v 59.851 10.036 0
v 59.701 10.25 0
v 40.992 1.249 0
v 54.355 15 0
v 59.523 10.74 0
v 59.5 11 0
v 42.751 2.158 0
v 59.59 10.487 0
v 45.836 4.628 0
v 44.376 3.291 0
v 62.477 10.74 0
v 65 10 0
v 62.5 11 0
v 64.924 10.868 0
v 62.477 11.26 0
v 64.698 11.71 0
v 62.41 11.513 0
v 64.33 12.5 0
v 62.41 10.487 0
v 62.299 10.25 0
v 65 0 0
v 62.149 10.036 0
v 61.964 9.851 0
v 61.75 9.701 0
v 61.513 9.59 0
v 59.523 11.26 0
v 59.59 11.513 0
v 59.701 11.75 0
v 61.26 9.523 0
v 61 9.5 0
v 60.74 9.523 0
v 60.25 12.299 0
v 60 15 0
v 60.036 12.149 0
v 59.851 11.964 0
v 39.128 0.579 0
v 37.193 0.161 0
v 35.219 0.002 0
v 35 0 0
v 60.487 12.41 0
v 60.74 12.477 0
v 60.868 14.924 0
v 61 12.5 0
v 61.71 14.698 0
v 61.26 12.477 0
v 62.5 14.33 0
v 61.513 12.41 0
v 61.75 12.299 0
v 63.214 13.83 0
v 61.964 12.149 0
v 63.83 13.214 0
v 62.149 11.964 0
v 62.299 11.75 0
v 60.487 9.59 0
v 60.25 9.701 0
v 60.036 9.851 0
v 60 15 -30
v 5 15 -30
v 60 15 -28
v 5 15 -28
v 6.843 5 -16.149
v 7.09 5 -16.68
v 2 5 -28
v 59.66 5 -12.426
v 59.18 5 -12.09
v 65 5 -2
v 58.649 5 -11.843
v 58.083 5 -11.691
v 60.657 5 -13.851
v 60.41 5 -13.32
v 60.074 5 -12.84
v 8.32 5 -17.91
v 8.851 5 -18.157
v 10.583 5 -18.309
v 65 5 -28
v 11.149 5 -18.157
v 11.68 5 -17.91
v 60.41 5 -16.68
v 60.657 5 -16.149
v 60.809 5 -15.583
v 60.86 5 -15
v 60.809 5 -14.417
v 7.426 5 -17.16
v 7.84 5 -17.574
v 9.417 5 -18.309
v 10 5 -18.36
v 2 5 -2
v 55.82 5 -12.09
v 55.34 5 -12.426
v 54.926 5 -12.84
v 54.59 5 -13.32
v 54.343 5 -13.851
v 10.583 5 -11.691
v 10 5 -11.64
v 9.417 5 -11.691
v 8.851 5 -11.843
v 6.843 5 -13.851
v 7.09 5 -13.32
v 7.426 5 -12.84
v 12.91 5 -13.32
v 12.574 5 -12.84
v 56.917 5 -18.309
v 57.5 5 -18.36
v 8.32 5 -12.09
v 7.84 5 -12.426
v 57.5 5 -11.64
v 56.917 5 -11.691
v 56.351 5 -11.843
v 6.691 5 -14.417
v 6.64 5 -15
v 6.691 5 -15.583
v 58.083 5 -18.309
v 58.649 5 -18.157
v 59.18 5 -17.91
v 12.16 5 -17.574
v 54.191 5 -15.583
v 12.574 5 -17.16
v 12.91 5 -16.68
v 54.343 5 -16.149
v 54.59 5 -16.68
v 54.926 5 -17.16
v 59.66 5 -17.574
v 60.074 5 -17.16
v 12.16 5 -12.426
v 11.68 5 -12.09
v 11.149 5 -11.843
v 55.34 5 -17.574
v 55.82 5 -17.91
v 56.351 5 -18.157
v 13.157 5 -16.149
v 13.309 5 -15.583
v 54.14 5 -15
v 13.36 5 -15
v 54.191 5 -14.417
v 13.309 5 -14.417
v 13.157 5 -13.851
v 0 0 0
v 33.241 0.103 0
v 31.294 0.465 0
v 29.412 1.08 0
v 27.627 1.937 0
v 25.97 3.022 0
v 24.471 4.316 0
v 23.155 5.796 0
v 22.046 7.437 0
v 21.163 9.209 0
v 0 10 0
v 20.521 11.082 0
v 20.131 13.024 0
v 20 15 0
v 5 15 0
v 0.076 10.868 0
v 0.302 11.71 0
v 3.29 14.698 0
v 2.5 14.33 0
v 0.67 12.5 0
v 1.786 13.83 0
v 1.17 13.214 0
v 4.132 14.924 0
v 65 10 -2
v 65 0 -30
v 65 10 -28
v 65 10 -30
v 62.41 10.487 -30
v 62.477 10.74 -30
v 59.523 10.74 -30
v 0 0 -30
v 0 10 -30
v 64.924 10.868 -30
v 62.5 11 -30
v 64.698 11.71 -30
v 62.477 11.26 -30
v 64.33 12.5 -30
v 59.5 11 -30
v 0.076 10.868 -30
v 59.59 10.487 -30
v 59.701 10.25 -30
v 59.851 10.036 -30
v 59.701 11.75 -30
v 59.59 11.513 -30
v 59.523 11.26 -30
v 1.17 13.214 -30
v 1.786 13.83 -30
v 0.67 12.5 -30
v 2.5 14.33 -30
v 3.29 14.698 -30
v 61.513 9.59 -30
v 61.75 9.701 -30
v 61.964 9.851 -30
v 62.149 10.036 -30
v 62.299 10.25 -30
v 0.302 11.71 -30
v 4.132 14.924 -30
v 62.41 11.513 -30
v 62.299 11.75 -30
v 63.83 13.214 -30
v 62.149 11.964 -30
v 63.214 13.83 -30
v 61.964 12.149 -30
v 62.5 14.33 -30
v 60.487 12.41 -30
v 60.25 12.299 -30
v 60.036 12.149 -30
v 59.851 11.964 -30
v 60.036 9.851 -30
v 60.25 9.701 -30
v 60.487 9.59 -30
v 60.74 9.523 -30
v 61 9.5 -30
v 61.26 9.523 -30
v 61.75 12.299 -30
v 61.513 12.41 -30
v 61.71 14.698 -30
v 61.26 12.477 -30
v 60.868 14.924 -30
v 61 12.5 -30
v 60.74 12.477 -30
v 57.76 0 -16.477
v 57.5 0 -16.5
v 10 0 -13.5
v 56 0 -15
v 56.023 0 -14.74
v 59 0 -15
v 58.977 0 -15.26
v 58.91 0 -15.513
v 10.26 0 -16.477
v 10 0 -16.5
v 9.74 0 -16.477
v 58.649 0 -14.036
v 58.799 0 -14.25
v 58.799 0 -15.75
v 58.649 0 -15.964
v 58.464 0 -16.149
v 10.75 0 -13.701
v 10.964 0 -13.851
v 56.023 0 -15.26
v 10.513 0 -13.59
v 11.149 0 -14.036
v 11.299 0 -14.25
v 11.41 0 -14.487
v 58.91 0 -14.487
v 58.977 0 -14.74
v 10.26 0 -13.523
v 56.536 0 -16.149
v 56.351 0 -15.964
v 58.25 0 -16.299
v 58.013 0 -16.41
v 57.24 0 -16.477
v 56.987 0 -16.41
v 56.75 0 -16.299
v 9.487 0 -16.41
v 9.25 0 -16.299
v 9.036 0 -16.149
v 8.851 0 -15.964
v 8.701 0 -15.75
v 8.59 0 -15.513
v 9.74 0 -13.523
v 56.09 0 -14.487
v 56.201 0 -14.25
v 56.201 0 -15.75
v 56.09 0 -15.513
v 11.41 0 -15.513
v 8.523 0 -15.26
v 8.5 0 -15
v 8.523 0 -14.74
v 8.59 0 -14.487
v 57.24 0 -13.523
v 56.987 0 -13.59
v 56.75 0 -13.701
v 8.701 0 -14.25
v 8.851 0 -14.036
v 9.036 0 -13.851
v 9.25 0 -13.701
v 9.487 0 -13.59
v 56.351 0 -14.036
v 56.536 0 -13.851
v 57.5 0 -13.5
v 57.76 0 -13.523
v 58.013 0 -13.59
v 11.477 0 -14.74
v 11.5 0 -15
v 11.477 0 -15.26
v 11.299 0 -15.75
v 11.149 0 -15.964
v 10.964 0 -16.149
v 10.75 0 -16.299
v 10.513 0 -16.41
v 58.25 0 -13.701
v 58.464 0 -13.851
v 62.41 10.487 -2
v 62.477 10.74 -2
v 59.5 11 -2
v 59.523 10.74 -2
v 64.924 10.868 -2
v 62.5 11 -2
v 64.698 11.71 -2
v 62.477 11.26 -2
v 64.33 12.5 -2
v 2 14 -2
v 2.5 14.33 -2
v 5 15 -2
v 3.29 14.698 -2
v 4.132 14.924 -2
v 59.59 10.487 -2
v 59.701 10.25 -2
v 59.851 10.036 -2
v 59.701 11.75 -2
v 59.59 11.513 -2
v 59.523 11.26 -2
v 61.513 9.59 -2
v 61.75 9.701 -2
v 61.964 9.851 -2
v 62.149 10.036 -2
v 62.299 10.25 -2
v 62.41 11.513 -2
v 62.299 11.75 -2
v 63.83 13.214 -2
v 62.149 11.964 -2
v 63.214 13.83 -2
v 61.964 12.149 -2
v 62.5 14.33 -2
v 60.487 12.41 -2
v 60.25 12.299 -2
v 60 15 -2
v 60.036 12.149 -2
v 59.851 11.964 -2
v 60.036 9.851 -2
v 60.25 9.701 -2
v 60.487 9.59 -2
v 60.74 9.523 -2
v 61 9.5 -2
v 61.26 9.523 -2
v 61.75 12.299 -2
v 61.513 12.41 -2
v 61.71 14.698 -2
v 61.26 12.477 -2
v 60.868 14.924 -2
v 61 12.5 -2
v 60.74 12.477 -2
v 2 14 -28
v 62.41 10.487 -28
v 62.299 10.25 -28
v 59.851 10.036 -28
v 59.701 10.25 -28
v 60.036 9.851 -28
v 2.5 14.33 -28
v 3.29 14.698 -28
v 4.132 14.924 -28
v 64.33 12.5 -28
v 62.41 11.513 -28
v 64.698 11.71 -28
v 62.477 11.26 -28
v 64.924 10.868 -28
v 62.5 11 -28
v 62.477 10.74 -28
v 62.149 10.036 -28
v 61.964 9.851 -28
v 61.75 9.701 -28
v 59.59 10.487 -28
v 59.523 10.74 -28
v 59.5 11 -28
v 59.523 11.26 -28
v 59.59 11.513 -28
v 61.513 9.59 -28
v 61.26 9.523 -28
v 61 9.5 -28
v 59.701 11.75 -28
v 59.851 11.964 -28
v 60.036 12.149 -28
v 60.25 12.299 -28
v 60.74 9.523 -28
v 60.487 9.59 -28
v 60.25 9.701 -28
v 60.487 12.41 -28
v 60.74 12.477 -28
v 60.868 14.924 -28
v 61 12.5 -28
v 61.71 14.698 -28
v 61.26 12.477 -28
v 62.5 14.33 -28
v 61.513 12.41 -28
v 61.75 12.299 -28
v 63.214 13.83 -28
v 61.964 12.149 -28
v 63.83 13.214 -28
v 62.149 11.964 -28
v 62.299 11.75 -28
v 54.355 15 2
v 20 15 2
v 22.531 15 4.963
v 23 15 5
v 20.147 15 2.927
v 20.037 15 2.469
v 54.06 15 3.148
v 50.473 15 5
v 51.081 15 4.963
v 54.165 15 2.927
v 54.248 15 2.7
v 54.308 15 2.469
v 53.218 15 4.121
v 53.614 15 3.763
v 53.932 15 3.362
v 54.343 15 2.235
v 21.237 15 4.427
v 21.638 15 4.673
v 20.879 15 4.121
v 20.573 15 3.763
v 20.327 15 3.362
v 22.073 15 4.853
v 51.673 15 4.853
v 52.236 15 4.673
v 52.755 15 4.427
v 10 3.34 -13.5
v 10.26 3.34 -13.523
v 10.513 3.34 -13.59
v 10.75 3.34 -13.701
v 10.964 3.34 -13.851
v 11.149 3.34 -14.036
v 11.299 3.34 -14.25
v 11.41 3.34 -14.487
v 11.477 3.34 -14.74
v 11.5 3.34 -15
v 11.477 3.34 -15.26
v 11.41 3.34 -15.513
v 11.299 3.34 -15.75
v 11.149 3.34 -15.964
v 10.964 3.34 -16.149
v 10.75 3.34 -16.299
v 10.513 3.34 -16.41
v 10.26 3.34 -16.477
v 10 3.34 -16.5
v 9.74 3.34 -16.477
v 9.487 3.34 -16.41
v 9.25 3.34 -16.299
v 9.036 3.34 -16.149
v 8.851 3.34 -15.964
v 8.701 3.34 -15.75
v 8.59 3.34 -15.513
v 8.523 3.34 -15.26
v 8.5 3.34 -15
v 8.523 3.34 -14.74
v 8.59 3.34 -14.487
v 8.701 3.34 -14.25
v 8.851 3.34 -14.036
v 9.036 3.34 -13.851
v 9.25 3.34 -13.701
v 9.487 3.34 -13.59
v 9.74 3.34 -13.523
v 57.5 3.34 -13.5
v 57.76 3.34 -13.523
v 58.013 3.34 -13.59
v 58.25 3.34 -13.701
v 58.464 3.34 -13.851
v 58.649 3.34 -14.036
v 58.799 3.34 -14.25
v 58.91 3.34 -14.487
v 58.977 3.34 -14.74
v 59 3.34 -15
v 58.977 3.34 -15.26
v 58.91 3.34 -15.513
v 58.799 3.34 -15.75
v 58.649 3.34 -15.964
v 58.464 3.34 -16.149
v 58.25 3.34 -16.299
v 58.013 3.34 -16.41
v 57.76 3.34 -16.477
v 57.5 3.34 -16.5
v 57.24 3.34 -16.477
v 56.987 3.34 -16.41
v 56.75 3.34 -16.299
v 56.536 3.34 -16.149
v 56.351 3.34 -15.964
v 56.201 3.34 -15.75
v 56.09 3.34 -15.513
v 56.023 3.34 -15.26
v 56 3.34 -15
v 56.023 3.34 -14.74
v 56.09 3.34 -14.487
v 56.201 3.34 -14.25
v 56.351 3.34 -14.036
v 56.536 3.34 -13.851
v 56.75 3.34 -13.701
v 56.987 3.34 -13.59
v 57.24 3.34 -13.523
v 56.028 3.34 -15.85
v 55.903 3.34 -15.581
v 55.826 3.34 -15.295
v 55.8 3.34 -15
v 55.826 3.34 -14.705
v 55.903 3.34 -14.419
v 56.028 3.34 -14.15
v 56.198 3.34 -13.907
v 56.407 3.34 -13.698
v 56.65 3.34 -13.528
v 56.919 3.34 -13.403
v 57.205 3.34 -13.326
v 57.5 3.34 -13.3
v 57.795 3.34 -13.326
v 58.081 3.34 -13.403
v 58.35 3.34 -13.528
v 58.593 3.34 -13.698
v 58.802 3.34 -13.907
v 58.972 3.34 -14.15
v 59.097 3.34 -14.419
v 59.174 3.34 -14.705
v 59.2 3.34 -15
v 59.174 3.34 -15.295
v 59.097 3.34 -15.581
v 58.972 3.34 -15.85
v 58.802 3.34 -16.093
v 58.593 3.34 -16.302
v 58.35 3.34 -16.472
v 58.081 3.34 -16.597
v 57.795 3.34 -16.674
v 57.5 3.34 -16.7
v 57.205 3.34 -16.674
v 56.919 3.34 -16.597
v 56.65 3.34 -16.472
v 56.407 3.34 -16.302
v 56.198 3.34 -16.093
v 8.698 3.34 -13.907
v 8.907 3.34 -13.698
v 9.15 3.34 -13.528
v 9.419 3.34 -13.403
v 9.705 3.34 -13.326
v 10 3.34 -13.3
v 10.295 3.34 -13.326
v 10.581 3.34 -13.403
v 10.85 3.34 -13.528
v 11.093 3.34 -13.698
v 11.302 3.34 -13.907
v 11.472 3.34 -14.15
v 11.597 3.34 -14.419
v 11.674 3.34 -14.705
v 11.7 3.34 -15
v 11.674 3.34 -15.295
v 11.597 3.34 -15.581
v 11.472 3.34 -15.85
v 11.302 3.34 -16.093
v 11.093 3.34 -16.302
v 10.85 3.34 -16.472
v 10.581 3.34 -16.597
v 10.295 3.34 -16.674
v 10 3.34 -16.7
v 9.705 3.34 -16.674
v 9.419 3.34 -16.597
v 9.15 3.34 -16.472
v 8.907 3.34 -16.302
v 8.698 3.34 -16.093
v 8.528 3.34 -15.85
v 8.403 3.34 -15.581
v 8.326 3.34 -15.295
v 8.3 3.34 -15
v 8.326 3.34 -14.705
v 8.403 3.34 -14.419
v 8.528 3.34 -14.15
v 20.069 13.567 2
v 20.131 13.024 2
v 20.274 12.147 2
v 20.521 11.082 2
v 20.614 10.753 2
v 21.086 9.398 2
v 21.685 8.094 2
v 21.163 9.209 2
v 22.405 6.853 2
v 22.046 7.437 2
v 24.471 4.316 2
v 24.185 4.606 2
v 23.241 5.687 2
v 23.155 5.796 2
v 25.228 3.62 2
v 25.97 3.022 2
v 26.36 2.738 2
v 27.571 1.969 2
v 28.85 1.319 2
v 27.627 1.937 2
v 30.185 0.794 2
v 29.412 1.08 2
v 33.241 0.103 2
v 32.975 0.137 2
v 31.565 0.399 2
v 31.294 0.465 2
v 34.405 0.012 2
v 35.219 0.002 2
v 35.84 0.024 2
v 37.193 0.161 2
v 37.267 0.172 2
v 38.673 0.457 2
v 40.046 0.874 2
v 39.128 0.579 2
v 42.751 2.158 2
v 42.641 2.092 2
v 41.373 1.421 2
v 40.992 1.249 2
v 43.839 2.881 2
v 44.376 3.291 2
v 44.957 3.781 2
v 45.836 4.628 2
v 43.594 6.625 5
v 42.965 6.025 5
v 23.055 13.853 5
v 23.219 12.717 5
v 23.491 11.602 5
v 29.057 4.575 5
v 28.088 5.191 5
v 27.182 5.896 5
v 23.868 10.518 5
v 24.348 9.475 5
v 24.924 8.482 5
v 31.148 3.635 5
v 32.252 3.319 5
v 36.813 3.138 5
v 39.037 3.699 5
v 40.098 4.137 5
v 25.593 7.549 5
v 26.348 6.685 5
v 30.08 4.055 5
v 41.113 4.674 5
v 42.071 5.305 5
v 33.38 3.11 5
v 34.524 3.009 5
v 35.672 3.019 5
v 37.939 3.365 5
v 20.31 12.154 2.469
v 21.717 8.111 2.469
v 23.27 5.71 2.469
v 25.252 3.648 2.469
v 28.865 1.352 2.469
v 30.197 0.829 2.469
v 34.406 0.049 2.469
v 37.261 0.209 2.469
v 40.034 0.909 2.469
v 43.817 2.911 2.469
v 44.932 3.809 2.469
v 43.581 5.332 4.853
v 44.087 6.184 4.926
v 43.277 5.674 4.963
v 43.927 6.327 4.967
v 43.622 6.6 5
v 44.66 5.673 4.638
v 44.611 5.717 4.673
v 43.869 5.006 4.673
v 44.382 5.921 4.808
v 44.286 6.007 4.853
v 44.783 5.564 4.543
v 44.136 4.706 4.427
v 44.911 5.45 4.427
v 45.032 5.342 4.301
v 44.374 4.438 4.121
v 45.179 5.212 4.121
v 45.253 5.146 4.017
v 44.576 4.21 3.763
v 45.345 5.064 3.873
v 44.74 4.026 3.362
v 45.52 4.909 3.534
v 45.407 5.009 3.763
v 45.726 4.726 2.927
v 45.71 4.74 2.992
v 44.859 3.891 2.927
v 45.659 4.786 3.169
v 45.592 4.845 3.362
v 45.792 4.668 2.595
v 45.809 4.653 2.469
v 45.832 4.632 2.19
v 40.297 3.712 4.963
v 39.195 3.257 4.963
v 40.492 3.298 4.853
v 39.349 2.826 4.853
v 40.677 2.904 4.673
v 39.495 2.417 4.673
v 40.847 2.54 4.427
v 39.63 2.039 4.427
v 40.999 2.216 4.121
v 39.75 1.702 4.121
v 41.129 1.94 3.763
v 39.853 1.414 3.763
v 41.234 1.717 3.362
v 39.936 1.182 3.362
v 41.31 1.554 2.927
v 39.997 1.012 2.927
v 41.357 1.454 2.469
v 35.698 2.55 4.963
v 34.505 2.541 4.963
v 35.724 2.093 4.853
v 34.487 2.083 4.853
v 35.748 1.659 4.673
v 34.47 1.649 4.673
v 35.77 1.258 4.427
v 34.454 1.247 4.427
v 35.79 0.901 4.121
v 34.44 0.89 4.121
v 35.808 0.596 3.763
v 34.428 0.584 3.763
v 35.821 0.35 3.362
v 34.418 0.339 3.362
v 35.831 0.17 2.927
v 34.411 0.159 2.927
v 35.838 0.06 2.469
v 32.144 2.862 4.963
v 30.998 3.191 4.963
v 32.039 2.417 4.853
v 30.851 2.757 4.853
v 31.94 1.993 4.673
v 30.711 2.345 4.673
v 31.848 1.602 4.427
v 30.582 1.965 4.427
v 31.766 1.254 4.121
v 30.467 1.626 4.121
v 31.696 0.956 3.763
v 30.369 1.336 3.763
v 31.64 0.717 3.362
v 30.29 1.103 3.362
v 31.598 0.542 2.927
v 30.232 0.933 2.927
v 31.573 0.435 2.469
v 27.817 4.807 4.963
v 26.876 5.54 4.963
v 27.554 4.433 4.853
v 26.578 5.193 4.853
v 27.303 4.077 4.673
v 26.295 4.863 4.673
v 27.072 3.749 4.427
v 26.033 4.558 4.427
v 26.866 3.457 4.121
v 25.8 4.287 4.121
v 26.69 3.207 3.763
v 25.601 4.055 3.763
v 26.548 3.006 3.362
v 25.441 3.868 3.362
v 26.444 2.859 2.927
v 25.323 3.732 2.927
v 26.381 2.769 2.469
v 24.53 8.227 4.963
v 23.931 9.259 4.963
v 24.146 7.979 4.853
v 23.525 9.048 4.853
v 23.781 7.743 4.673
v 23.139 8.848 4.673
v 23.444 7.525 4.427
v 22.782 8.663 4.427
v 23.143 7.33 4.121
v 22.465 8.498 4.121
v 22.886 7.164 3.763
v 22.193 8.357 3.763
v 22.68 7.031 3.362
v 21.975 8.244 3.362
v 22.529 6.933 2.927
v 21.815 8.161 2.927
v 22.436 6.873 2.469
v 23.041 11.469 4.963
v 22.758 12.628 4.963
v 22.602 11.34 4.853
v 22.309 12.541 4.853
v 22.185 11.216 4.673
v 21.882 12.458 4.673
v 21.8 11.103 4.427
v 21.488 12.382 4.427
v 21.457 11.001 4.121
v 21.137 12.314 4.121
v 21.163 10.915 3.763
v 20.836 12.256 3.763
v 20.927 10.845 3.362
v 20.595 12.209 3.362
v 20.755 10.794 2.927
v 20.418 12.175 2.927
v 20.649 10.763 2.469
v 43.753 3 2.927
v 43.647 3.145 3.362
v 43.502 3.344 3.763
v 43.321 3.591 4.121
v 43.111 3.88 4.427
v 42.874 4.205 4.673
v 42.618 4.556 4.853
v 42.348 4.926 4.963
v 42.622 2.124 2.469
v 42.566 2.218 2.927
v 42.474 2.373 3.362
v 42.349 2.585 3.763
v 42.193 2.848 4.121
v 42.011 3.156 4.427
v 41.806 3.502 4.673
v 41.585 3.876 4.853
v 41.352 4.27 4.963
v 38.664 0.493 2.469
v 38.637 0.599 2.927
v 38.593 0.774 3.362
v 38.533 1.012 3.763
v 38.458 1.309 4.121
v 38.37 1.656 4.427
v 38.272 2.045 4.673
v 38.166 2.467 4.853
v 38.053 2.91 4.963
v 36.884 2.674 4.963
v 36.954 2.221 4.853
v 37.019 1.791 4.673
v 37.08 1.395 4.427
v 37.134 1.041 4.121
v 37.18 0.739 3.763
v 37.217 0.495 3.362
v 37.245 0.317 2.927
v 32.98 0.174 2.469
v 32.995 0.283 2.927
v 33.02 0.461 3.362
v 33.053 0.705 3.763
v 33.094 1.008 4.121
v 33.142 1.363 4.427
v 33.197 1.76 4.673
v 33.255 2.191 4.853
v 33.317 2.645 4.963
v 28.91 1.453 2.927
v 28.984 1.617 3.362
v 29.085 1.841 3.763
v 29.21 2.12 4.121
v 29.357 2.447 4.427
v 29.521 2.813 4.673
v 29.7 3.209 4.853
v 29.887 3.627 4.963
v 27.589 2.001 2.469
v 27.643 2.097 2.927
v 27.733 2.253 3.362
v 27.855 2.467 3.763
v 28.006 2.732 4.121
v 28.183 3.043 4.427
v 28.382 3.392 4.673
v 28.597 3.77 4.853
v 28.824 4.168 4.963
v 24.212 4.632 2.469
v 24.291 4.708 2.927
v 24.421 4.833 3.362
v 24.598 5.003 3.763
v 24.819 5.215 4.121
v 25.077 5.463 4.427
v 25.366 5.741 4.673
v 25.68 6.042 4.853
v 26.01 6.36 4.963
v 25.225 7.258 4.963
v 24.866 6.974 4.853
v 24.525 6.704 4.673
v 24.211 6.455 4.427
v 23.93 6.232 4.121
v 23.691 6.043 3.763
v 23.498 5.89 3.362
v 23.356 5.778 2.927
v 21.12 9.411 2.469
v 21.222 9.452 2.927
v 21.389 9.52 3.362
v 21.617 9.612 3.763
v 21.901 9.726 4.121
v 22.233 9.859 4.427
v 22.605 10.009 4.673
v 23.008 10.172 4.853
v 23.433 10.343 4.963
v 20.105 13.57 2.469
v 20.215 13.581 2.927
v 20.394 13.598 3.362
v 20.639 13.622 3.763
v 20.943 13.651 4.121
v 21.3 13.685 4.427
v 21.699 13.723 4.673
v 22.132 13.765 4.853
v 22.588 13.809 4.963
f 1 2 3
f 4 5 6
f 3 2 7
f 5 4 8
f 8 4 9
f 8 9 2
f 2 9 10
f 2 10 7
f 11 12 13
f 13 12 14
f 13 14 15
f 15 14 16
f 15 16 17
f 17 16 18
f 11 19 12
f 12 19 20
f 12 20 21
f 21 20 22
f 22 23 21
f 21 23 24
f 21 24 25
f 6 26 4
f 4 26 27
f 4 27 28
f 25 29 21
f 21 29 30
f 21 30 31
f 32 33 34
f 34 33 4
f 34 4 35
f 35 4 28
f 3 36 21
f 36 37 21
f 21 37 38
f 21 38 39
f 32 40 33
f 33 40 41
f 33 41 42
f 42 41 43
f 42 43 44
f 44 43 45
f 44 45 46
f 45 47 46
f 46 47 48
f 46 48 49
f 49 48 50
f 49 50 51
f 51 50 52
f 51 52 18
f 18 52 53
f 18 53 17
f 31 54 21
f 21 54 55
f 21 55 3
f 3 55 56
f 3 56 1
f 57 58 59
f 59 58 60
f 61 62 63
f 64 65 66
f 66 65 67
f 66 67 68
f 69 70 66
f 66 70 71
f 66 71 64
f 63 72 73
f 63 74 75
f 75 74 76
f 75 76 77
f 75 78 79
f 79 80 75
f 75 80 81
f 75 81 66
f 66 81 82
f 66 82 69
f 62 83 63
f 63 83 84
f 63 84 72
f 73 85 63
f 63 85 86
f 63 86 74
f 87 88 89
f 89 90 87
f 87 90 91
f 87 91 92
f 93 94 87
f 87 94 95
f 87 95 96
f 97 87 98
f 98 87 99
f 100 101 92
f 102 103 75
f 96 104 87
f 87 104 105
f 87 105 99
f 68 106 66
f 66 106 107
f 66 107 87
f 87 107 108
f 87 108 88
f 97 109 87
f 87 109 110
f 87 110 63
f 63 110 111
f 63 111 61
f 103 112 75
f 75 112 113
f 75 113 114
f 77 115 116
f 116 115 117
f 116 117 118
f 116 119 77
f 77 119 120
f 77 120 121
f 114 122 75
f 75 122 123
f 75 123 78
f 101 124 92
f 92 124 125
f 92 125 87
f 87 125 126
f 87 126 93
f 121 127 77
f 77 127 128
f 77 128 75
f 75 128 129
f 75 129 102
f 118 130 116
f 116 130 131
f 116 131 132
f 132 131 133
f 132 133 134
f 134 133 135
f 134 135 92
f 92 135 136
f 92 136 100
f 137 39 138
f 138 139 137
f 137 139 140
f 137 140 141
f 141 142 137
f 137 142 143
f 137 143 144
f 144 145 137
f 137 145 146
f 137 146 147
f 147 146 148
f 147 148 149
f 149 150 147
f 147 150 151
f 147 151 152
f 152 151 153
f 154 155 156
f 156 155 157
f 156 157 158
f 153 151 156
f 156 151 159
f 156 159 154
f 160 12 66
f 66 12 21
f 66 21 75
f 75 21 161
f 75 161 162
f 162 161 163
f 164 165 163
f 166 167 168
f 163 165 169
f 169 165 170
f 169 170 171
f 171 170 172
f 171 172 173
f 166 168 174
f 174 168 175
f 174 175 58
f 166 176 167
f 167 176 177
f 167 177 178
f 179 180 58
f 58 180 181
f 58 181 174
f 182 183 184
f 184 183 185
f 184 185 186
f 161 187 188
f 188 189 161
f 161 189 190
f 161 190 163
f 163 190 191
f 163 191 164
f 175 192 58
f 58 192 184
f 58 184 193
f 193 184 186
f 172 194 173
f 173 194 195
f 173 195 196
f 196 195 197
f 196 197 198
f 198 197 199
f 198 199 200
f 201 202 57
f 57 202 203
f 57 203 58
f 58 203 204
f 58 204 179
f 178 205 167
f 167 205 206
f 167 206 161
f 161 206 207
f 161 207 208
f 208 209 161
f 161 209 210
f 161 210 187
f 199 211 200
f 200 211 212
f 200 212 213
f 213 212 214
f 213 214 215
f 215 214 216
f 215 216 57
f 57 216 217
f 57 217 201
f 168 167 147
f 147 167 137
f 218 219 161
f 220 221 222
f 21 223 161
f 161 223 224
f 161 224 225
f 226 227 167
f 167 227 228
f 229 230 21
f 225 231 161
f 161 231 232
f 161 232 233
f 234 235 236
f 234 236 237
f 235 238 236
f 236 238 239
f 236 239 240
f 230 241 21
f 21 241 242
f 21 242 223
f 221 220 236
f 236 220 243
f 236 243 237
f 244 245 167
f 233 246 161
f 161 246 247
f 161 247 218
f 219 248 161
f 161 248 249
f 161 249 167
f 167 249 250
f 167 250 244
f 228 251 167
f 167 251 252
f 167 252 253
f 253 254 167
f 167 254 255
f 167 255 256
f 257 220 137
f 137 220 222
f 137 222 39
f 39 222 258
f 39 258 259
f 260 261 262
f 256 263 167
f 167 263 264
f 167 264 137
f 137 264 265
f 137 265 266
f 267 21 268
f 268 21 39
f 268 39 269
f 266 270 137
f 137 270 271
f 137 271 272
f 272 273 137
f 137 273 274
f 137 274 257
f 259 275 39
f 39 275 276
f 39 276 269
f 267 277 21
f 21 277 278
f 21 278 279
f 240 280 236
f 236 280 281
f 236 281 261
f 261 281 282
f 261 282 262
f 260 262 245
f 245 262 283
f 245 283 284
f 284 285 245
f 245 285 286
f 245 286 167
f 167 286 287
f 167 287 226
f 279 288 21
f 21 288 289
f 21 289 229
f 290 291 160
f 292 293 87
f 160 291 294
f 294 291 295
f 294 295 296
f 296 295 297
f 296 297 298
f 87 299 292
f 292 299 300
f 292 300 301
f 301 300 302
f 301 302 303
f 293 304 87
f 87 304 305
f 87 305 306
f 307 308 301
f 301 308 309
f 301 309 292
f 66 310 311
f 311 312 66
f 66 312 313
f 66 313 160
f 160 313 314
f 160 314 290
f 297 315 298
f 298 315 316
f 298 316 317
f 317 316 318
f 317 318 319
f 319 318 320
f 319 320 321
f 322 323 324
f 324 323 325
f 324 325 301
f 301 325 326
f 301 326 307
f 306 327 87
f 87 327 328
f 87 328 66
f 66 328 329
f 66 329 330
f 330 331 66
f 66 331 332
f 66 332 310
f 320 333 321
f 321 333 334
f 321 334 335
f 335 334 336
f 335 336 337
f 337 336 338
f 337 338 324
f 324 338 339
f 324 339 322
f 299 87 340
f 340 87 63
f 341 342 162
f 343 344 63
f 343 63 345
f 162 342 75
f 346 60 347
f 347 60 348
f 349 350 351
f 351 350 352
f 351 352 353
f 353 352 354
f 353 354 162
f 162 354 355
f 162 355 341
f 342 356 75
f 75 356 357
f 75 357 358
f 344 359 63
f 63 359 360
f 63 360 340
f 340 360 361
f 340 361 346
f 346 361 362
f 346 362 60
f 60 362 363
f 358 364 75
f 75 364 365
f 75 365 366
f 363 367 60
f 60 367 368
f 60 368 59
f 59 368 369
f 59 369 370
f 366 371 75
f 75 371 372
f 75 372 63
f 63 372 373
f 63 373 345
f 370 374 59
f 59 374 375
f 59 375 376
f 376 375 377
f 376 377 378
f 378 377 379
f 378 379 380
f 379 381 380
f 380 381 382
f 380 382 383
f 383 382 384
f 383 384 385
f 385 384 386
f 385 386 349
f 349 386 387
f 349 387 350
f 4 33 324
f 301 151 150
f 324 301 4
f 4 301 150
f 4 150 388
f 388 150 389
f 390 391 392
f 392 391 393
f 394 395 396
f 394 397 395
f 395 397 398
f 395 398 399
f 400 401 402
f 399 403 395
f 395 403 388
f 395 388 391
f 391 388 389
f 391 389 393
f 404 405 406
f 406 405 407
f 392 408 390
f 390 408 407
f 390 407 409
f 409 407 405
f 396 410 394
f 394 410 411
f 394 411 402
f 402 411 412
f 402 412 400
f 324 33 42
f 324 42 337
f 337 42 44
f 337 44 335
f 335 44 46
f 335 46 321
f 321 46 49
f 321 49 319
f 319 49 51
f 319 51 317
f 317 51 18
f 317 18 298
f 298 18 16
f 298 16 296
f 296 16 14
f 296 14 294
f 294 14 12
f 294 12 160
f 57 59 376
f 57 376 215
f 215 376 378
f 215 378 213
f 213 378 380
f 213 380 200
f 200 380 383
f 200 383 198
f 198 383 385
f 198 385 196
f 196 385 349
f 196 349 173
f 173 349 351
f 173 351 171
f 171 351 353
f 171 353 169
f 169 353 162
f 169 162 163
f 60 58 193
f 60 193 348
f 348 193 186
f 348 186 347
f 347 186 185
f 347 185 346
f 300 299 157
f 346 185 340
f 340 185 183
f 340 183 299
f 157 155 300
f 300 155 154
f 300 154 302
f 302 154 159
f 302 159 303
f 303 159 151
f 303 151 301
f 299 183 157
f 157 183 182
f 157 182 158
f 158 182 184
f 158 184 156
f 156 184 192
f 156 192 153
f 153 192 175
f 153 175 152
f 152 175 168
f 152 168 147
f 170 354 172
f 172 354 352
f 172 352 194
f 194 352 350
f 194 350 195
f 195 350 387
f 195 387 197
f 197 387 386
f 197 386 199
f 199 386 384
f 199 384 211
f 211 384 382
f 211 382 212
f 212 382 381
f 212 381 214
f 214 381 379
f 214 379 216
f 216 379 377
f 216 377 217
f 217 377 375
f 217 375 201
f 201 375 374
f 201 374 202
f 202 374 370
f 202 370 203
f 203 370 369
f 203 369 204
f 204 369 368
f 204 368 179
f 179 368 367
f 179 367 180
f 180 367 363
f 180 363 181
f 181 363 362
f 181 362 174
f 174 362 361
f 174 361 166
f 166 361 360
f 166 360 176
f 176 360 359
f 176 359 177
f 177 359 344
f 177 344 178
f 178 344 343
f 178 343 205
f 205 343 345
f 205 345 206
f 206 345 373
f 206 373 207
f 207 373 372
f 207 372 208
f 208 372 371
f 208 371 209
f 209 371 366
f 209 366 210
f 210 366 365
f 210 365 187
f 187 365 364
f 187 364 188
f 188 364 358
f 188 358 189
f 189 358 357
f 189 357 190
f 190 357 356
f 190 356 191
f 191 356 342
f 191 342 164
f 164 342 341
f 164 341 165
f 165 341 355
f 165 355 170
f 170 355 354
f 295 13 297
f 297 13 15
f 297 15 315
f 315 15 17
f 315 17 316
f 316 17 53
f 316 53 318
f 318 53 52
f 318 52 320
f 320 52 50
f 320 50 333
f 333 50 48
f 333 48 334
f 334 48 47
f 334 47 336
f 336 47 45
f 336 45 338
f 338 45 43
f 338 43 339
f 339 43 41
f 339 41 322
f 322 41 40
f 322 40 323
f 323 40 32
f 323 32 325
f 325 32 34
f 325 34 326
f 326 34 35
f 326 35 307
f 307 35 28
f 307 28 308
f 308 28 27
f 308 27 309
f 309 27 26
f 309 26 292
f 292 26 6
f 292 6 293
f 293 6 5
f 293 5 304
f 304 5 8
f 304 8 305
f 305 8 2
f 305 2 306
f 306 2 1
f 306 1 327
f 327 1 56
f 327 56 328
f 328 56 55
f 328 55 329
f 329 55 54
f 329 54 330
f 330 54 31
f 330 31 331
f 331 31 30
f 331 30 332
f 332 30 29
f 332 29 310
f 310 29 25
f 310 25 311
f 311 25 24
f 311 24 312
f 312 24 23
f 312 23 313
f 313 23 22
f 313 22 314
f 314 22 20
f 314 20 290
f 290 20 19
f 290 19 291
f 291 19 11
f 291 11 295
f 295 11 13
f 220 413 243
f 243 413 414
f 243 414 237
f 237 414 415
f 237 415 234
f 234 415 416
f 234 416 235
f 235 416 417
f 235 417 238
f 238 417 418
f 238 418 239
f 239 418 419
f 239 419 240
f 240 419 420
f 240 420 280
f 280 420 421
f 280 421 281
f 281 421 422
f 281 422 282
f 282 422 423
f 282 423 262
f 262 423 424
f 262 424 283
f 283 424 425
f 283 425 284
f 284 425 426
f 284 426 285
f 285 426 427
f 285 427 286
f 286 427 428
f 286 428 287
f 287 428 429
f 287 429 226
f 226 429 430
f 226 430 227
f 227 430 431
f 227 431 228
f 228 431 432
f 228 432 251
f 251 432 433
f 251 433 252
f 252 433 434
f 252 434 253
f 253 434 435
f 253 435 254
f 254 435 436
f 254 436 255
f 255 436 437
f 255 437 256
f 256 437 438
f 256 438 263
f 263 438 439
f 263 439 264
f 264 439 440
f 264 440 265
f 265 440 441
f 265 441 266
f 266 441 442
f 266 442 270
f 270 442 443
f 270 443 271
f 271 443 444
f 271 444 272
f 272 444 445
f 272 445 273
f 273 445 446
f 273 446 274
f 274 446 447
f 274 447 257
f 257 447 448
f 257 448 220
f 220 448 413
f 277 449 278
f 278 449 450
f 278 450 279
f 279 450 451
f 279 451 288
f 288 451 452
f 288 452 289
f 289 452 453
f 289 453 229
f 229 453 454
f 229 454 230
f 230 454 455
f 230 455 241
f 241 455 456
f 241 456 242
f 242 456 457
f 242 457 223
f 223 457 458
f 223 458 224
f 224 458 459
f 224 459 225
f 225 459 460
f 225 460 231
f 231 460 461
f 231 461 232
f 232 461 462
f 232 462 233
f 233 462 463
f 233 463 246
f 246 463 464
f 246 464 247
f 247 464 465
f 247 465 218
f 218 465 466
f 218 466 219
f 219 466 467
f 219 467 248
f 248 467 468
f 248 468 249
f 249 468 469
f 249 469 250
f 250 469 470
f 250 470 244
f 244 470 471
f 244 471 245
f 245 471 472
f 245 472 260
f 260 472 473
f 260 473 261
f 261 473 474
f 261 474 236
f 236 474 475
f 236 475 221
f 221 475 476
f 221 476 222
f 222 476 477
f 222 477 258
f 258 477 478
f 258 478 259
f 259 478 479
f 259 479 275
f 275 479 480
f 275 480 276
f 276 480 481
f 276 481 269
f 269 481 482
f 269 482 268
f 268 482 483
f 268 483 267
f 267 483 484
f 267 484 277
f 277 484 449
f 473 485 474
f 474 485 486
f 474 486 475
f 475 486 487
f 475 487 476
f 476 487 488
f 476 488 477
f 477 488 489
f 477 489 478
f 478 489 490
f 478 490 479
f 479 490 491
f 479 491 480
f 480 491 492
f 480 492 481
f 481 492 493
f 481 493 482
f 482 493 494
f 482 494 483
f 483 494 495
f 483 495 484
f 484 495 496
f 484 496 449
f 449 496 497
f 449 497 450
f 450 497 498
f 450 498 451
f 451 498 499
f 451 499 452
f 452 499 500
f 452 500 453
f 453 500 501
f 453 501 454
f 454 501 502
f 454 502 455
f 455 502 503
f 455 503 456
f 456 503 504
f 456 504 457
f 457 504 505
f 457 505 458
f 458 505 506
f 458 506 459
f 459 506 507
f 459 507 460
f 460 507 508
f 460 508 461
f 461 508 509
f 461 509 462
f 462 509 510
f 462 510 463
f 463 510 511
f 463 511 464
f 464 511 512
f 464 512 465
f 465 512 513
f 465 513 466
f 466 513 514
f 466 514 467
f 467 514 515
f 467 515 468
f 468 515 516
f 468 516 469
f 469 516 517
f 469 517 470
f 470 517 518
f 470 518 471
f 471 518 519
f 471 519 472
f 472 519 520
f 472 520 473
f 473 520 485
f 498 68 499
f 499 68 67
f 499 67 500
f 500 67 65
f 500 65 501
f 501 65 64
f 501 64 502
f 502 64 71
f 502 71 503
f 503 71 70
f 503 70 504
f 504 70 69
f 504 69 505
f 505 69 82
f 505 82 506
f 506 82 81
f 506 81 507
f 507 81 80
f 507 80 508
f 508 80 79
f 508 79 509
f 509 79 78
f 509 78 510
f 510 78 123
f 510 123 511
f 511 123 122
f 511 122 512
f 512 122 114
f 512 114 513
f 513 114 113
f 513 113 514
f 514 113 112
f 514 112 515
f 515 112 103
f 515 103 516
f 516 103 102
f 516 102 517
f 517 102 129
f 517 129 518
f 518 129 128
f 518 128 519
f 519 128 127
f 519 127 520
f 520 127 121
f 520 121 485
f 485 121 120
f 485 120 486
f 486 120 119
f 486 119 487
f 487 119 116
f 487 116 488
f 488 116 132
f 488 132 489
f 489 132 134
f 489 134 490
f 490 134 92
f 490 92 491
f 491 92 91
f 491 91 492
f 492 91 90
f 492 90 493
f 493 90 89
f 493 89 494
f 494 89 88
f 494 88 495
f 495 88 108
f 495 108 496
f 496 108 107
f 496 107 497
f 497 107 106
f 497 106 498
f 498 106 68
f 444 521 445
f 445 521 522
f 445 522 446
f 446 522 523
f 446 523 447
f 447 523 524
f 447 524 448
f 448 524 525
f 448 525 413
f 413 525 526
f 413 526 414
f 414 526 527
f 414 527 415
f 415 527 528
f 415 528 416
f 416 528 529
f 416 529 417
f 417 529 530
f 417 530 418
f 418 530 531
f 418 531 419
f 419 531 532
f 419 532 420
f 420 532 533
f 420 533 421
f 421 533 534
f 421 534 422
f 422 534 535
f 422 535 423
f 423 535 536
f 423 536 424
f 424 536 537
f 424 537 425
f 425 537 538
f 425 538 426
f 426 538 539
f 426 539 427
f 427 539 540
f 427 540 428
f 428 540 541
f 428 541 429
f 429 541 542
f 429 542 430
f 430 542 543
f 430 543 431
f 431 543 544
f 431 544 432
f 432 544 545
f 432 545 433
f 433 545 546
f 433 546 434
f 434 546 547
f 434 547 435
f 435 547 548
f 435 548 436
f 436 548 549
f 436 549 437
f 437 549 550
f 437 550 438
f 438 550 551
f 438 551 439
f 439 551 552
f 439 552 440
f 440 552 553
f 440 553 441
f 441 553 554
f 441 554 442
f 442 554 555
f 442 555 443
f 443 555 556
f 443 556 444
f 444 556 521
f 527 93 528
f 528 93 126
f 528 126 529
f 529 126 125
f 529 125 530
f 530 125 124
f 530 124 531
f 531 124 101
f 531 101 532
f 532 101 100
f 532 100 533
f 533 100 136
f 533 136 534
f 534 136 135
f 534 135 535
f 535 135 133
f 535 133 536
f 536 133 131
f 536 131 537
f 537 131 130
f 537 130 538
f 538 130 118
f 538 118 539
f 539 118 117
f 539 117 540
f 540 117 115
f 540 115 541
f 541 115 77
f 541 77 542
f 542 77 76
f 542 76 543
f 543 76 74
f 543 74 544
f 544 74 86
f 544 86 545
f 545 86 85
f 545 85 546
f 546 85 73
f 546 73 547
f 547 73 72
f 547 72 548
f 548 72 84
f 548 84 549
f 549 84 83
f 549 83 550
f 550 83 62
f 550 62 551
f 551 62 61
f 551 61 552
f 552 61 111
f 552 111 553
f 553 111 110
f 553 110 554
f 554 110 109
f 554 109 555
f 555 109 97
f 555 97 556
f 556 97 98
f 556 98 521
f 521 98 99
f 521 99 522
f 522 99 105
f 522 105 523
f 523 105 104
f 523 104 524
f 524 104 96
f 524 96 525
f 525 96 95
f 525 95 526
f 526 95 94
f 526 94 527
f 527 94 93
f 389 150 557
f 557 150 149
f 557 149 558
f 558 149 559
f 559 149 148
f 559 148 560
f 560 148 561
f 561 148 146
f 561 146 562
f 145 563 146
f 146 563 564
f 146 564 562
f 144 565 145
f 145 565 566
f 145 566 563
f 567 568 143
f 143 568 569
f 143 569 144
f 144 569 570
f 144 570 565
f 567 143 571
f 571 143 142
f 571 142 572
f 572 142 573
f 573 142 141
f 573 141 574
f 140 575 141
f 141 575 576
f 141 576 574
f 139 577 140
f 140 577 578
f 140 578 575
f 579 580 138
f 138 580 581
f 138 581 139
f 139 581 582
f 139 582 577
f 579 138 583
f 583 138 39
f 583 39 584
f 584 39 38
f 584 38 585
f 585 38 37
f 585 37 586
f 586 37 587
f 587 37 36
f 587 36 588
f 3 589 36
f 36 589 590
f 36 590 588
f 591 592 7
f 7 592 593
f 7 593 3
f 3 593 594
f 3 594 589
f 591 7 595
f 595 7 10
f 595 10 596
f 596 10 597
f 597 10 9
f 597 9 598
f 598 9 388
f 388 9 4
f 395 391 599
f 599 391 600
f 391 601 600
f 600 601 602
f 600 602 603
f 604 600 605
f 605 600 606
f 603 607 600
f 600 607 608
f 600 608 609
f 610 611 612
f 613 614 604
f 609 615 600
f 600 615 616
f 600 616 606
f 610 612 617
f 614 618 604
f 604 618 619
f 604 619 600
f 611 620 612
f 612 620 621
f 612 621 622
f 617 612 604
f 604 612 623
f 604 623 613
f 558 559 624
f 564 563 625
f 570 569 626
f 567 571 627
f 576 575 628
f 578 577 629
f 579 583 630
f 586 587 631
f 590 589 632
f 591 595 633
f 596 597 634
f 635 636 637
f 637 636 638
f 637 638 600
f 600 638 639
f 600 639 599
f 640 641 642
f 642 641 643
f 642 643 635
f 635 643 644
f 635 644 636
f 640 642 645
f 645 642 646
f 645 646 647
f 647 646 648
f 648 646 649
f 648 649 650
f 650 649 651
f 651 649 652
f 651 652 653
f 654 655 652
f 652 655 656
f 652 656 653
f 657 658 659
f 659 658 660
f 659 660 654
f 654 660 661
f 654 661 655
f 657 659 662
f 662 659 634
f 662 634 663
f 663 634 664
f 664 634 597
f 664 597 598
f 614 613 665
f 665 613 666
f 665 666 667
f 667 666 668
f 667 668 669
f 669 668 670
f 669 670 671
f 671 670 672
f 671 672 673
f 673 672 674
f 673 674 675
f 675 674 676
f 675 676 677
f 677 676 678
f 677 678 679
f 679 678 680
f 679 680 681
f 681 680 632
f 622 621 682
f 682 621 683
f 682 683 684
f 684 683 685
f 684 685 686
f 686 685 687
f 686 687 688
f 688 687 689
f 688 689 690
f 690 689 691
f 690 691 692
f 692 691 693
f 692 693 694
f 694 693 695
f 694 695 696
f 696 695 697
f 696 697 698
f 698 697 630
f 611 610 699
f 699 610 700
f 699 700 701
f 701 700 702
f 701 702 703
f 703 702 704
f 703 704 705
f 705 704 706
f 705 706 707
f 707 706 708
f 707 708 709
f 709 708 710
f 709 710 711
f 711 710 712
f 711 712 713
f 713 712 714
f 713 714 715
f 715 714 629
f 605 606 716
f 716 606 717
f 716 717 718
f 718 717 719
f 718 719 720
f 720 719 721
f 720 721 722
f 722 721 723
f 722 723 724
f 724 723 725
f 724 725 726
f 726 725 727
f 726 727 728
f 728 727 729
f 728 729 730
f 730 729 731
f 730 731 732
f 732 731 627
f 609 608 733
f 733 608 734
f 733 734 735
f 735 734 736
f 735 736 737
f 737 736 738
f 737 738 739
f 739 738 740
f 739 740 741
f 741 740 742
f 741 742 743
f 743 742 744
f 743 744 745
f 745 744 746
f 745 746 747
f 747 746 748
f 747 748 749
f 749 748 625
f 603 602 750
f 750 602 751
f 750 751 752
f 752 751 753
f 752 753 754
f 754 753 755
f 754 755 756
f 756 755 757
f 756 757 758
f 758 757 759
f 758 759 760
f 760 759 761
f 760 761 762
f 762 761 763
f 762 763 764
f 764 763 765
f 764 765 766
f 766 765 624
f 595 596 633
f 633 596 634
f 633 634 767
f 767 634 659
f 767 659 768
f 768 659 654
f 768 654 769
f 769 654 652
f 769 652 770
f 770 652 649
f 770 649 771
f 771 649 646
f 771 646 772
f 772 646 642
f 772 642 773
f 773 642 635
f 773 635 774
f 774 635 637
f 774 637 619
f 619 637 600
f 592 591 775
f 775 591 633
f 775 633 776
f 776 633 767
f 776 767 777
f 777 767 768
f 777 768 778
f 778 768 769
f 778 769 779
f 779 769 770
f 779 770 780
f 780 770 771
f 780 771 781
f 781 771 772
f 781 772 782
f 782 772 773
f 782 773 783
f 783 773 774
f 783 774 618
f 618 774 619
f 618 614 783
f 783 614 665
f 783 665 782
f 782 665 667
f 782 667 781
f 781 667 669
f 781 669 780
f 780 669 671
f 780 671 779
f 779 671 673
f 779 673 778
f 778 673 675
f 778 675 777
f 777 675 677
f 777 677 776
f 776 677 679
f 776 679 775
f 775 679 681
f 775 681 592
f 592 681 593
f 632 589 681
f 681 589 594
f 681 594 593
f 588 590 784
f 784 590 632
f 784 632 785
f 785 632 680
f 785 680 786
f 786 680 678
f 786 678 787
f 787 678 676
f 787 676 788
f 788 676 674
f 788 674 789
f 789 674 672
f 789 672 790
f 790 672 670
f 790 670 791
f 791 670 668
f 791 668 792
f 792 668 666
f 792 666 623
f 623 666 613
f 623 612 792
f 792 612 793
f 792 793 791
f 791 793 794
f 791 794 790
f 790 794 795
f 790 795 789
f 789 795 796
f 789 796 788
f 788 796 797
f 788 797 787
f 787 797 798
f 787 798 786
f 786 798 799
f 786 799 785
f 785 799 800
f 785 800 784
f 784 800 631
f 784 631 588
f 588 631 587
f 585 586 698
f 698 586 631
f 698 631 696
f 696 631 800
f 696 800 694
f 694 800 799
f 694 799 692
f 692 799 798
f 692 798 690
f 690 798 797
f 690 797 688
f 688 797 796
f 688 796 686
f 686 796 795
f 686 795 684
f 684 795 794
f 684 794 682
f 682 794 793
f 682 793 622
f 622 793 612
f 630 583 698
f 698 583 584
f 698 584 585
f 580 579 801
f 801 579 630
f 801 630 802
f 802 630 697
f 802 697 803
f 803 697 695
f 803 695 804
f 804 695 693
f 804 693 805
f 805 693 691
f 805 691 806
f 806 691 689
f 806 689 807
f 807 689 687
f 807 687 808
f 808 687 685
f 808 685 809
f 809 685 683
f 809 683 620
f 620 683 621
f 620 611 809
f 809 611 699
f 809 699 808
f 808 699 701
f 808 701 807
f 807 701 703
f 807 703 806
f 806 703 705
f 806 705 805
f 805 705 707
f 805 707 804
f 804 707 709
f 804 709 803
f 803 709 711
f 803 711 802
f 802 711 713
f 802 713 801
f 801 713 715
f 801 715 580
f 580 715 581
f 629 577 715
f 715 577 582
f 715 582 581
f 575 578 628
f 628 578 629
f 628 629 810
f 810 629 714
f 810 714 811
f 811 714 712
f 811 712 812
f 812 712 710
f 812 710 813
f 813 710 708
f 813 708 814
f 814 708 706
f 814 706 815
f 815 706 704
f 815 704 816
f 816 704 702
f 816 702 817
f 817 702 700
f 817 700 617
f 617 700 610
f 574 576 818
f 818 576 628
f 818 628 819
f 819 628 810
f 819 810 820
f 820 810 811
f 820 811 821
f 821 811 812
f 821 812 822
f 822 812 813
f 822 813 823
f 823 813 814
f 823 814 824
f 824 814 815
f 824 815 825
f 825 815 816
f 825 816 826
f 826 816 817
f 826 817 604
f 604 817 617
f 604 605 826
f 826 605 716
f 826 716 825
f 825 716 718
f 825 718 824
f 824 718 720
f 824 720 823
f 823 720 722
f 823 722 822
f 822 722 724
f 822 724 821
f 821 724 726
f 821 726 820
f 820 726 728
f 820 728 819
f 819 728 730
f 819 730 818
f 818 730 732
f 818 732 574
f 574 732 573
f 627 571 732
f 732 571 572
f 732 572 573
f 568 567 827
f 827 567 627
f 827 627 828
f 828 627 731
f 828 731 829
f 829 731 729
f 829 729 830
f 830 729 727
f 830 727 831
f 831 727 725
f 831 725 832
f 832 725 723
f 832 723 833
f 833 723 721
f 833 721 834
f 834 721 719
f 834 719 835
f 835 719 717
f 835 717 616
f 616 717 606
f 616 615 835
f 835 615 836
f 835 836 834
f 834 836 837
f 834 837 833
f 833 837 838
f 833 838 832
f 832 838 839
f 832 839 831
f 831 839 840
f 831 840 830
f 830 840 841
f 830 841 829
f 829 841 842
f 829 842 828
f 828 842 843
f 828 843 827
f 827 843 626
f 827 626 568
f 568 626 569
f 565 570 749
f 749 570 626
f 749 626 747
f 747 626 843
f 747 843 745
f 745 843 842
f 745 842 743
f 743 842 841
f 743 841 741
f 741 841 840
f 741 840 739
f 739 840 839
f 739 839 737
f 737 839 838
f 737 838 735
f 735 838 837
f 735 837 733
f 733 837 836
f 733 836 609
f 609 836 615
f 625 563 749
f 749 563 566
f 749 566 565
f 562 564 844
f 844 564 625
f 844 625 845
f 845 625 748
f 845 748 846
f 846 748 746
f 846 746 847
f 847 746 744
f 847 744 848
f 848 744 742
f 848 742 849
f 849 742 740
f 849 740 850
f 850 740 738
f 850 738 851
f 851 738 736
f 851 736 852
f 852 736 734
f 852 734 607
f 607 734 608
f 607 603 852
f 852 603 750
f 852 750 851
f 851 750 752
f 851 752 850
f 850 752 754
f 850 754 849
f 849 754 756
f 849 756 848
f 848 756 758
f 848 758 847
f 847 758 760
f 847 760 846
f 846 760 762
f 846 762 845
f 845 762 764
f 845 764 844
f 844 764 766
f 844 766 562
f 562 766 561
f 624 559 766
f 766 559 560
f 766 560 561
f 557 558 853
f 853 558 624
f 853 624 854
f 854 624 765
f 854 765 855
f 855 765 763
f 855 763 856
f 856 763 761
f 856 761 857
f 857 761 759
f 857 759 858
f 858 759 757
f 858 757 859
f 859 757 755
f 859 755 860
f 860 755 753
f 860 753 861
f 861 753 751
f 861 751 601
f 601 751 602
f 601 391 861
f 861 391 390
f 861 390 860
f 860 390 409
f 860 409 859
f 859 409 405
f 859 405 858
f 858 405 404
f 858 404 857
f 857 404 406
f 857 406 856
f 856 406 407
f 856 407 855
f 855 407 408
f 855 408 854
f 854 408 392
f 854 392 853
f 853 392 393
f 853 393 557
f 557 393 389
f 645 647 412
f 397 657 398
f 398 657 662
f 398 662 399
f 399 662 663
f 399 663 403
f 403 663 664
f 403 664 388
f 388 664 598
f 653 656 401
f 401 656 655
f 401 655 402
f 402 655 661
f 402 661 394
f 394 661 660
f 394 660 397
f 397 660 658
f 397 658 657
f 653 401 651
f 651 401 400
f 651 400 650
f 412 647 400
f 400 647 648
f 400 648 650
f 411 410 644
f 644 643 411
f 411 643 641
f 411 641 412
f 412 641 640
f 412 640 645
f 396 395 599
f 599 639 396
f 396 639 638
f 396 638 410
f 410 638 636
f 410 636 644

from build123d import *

# Parameters (mm, degrees)
CROQUIS1_W                   = 65
CROQUIS1_H                   = 30
SALIENTE_EXTRUIR1_DEPTH      = 5
SALIENTE_EXTRUIR2_DEPTH      = 10
REDONDEO1_R                  = 5
CROQUIS3_R                   = 1.5
CORTAR_EXTRUIR1_DEPTH        = 38
CROQUIS4_R                   = 1.5
CORTAR_EXTRUIR2_DEPTH        = 31
TALADROAVANZADO1_OUTLINE_R   = 1.7
TALADROAVANZADO1_DEPTH       = 1.66
TALADROAVANZADO1_DRAFT       = -45
TALADROAVANZADO1_2_OUTLINE_R = 1.7
TALADROAVANZADO1_2_DEPTH     = 1.66
TALADROAVANZADO1_2_DRAFT     = -45
SALIENTE_EXTRUIR3_DEPTH      = 5
REDONDEO2_START              = 19.038575289
REDONDEO2_DEPTH              = 30.635489066
REDONDEO2_2_ANGLE            = 136.254425


with BuildPart() as part:
    # Croquis1 → Saliente-Extruir1 (new body)
    with BuildSketch(Plane(origin=(0, 0, 0), x_dir=(1, 0, 0), z_dir=(0, 1, 0))):
        with Locations((32.5, 15)):
            Rectangle(CROQUIS1_W, CROQUIS1_H)
    extrude(amount=SALIENTE_EXTRUIR1_DEPTH)

    # Croquis2 → Saliente-Extruir2 (add)
    with BuildSketch(Plane(origin=(0, 5, 0), x_dir=(1, 0, 0), z_dir=(0, 1, 0))):
        Polygon((2, 2), (2, 28), (65, 28), (65, 30), (0, 30), (0, 0), (65, 0), (65, 2), align=None)
    extrude(amount=SALIENTE_EXTRUIR2_DEPTH)

    # Redondeo1
    # the kernel refuses this fillet: 5 mm, written as the material it takes off along each edge
    with BuildSketch(Plane(origin=(65, 15, 12.5), x_dir=(0, -1, 0), z_dir=(0, 0, -1)), Plane(origin=(65, 15, -15.5), x_dir=(0, -1, 0), z_dir=(0, 0, -1))) as redondeo1_piece_1:
        with BuildLine():
            CenterArc((REDONDEO1_R, REDONDEO1_R), REDONDEO1_R, 180, 90)
            Line((0, REDONDEO1_R), (0, 0))
            Line((0, 0), (REDONDEO1_R, 0))
        make_face()
    extrude(amount=27, mode=Mode.SUBTRACT)
    with BuildSketch(Plane(origin=(0, 15, -42.5), x_dir=(1, 0, 0), z_dir=(0, 0, 1))) as redondeo1_piece_2:
        with BuildLine():
            CenterArc((REDONDEO1_R, -REDONDEO1_R), REDONDEO1_R, 90, 90)
            Line((0, -REDONDEO1_R), (0, 0))
            Line((0, 0), (REDONDEO1_R, 0))
        make_face()
    extrude(amount=55, mode=Mode.SUBTRACT)

    # Croquis3 → Cortar-Extruir1 (cut)
    with BuildSketch(Plane.XY):
        with Locations(Location((61, 11, 0), (0, 0, 180))):
            Circle(CROQUIS3_R)
    extrude(amount=-CORTAR_EXTRUIR1_DEPTH, mode=Mode.SUBTRACT)

    # Croquis4 → Cortar-Extruir2 (cut)
    with BuildSketch(Plane(origin=(0, 5, 0), x_dir=(1, 0, 0), z_dir=(0, 1, 0))):
        with Locations(Location((57.5, 15, 0), (0, 0, 270))):
            Circle(CROQUIS4_R)
        with Locations(Location((10, 15, 0), (0, 0, 270))):
            Circle(CROQUIS4_R)
    extrude(amount=-CORTAR_EXTRUIR2_DEPTH, mode=Mode.SUBTRACT)


with BuildPart() as taladroavanzado1_tool:
    # TaladroAvanzado1: read off the stored shape, not the designer's step
    # TaladroAvanzado1 outline → TaladroAvanzado1 (with draft: the straight prism first)
    with BuildSketch(Plane(origin=(0, 3.34, 0), x_dir=(1, 0, 0), z_dir=(0, 1, 0))):
        with Locations((57.5, 15)):
            Circle(TALADROAVANZADO1_OUTLINE_R)
        with BuildLine():
            ThreePointArc((57.5, 16.5), (59, 15), (57.5, 13.5))
            ThreePointArc((57.5, 13.5), (56, 15), (57.5, 16.5))
        make_face(mode=Mode.SUBTRACT)
    extrude(amount=TALADROAVANZADO1_DEPTH)
    # TaladroAvanzado1: the draft: its side faces are tilted about the plane it starts from
    taladroavanzado1_sides = [taladroavanzado1_tool.faces().sort_by_distance(p)[0] for p in [
        (55.8, 4.17, -15),
        (57.5, 4.17, -13.5),
    ]]
    draft(taladroavanzado1_sides, Plane(origin=(0, 3.34, 0), x_dir=(1, 0, 0), z_dir=(0, 1, 0)), TALADROAVANZADO1_DRAFT)


with BuildPart() as part_1:
    add(part.part)

    # TaladroAvanzado1: cut by taladroavanzado1_tool
    add(taladroavanzado1_tool.part, mode=Mode.SUBTRACT)


with BuildPart() as taladroavanzado1_2_tool:
    # TaladroAvanzado1 2 outline → TaladroAvanzado1 2 (with draft: the straight prism first)
    with BuildSketch(Plane(origin=(0, 3.34, 0), x_dir=(1, 0, 0), z_dir=(0, 1, 0))):
        with Locations((10, 15)):
            Circle(TALADROAVANZADO1_2_OUTLINE_R)
        with BuildLine():
            ThreePointArc((10, 16.5), (11.5, 15), (10, 13.5))
            ThreePointArc((10, 13.5), (8.5, 15), (10, 16.5))
        make_face(mode=Mode.SUBTRACT)
    extrude(amount=TALADROAVANZADO1_2_DEPTH)
    # TaladroAvanzado1 2: the draft: its side faces are tilted about the plane it starts from
    taladroavanzado1_2_sides = [taladroavanzado1_2_tool.faces().sort_by_distance(p)[0] for p in [
        (8.3, 4.17, -15),
        (10, 4.17, -13.5),
    ]]
    draft(taladroavanzado1_2_sides, Plane(origin=(0, 3.34, 0), x_dir=(1, 0, 0), z_dir=(0, 1, 0)), TALADROAVANZADO1_2_DRAFT)


with BuildPart() as part_2:
    add(part_1.part)

    # TaladroAvanzado1 2: cut by taladroavanzado1_2_tool
    add(taladroavanzado1_2_tool.part, mode=Mode.SUBTRACT)

    # Croquis7 → Saliente-Extruir3 (add)
    with BuildSketch(Plane.XY):
        with BuildLine():
            Line((47.279462763, 6.385199117), (54.355438457, 15))
            Line((54.355438457, 15), (20, 15))
            ThreePointArc((20, 15), (29.411793924, 1.079800546), (45.83626038, 4.62814091))
            Line((45.83626038, 4.62814091), (47.279462763, 6.385199117))
        make_face()
    extrude(amount=SALIENTE_EXTRUIR3_DEPTH)

    # Redondeo2: read off the stored shape, not the designer's step
    # Redondeo2 outline → Redondeo2 (cut)
    with BuildSketch(Plane(origin=(0, 0, 0), x_dir=(0.7727468393506849, -0.6347143627440037, 0), z_dir=(0.6347143627440038, 0.7727468393506848, 0)).offset(REDONDEO2_START)):
        with BuildLine():
            Line((32.482277828, -5), (32.482277828, -2))
            ThreePointArc((32.482277828, -2), (31.603598172, -4.121320344), (29.482277828, -5))
            Line((29.482277828, -5), (32.482277828, -5))
        make_face()
    extrude(amount=REDONDEO2_DEPTH, mode=Mode.SUBTRACT)

    # Redondeo2 2 outline → Redondeo2 2 (revolve, cut)
    with BuildSketch(Plane(origin=(35, 15, 0), x_dir=(-1, 0, 0), z_dir=(0, 1, 0))):
        with BuildLine():
            ThreePointArc((12, 5), (14.121320344, 4.121320344), (15, 2))
            Line((15, 2), (15, 5))
            Line((15, 5), (12, 5))
        make_face()
    revolve(axis=Axis((35, 15, 0), (0, 0, 1)), revolution_arc=REDONDEO2_2_ANGLE, mode=Mode.SUBTRACT)


solid = part_2.part
